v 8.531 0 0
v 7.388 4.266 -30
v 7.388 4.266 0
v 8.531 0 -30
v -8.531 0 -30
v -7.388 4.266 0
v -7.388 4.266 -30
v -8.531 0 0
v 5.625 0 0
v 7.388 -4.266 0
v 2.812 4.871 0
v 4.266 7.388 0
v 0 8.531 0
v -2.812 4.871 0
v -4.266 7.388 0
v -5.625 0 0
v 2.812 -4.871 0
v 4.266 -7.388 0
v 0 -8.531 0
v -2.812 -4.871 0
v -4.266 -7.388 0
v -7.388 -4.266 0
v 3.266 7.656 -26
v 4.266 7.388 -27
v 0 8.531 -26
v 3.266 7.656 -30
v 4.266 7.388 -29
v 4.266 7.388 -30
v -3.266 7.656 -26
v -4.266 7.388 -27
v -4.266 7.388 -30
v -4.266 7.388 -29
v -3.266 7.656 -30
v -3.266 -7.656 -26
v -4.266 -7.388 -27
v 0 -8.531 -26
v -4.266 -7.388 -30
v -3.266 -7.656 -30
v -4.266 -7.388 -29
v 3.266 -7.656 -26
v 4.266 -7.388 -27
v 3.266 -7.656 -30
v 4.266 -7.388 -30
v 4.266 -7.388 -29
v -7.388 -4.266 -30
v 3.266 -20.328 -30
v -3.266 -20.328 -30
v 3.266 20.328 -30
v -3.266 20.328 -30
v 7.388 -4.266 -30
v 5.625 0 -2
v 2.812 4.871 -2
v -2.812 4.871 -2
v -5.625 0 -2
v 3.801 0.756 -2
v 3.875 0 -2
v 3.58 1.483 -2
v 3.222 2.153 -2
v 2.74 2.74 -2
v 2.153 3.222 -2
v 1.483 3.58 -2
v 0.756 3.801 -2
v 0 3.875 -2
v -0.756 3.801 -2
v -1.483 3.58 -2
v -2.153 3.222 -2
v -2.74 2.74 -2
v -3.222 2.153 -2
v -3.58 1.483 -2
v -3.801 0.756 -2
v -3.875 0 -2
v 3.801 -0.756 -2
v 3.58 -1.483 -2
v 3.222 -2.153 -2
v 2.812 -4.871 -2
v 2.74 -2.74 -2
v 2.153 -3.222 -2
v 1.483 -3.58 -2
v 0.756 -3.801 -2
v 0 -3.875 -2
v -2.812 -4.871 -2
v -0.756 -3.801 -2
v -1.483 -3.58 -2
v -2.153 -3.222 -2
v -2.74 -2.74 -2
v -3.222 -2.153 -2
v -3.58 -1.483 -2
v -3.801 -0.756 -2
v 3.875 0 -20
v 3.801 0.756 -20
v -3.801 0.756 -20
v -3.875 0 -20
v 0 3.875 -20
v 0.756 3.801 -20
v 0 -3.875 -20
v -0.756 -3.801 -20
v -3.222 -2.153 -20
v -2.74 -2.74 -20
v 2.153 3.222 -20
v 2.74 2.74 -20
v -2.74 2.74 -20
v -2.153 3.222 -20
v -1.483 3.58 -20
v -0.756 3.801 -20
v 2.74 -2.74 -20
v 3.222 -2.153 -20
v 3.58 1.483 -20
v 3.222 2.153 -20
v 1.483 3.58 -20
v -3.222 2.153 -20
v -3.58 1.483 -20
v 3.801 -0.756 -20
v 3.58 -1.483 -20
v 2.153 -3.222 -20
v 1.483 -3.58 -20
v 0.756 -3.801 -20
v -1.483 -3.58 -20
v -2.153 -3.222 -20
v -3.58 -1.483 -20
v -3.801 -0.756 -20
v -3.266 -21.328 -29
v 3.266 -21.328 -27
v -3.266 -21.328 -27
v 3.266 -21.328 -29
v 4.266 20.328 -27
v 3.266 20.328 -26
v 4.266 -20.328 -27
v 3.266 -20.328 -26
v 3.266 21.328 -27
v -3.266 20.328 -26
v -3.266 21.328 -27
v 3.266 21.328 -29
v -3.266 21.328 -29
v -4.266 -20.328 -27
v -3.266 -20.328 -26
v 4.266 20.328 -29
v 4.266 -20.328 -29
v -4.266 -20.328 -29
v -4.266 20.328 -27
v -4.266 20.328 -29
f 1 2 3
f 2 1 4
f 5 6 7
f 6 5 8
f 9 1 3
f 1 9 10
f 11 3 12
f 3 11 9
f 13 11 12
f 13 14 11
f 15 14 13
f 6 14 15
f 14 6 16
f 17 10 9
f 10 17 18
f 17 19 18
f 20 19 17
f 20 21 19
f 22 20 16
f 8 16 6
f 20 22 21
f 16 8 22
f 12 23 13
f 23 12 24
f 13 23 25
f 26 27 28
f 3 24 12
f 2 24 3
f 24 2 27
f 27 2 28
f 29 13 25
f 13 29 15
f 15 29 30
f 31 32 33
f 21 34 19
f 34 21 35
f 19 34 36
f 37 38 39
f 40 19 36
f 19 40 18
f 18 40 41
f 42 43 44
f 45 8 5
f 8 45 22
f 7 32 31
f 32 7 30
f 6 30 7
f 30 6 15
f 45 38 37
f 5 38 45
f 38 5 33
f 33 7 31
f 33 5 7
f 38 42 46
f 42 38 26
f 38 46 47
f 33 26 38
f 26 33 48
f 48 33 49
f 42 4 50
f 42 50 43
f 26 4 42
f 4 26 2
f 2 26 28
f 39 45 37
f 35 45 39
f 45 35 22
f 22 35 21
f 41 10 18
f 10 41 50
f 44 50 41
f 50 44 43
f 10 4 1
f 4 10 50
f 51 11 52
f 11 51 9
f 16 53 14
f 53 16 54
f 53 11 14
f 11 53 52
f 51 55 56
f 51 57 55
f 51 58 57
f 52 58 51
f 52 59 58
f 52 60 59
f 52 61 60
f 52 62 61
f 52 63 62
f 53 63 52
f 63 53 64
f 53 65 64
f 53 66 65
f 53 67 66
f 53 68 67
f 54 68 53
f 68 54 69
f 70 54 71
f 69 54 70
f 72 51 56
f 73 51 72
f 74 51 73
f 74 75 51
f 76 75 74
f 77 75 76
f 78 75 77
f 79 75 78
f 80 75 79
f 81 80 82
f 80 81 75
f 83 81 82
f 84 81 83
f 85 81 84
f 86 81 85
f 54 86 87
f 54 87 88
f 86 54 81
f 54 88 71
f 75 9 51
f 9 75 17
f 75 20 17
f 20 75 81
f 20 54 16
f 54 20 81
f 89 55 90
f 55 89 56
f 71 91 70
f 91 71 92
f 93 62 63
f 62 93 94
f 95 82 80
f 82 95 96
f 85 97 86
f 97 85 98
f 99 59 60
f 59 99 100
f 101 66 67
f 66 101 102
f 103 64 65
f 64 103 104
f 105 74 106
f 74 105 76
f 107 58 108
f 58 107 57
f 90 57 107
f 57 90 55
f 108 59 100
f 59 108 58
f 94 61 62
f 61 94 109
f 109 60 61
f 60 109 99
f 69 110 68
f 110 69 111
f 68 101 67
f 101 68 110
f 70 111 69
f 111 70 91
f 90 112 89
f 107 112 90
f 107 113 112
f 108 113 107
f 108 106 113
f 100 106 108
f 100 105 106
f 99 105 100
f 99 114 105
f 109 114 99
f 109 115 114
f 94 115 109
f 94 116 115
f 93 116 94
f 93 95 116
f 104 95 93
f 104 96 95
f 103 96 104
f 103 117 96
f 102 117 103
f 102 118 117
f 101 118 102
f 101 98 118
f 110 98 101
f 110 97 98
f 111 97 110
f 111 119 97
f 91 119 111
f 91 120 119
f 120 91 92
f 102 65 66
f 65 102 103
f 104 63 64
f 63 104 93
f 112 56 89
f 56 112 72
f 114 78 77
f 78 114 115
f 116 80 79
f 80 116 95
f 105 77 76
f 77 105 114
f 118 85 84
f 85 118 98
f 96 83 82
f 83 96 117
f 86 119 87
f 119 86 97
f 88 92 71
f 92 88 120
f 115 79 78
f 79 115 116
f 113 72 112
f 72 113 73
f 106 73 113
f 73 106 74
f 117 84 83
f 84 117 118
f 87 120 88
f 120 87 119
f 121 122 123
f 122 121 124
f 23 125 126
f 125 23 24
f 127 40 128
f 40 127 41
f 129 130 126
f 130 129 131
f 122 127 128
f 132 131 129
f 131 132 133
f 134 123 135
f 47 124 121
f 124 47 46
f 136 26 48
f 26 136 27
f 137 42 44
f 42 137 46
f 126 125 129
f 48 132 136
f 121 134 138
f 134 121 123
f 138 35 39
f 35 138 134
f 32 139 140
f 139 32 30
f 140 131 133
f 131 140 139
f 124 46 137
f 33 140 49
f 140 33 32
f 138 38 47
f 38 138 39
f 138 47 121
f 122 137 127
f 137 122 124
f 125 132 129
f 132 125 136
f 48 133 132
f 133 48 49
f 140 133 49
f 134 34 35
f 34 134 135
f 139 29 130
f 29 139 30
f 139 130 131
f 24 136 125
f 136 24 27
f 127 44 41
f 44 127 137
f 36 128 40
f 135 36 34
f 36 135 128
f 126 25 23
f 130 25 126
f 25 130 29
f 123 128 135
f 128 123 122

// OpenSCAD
include <BOSL/constants.scad>
use <BOSL/shapes.scad>
use <BOSL/transforms.scad>
use <BOSL/masks.scad>



diam=9.75;
heig=2;
head=20;
addl=10;
//40mm total height

odiam = diam*1.75;

mirror([0,0,1]) tool();

module tool() {  
  union() {
  difference(){
    color("green") cyl(d=odiam, h=head+addl, align=V_UP, $fn=12); // handle
    //color("yellow") up(head+addl) fillet_cylinder_mask(r=(odiam/2), fillet=2.5); // remark out with t-handle
    color("purple") cyl(d=diam+1.50, h=heig, align=V_UP, $fn=6); // nut
    color("pink") cyl(d=(diam-2), h=head, align=V_UP, $fn=32); // headroom
    
  }//difference
  up(head+addl-4) cuboid([odiam/2, odiam*2.5, 4], align=V_UP, chamfer=1); // new t-handle
}
}
